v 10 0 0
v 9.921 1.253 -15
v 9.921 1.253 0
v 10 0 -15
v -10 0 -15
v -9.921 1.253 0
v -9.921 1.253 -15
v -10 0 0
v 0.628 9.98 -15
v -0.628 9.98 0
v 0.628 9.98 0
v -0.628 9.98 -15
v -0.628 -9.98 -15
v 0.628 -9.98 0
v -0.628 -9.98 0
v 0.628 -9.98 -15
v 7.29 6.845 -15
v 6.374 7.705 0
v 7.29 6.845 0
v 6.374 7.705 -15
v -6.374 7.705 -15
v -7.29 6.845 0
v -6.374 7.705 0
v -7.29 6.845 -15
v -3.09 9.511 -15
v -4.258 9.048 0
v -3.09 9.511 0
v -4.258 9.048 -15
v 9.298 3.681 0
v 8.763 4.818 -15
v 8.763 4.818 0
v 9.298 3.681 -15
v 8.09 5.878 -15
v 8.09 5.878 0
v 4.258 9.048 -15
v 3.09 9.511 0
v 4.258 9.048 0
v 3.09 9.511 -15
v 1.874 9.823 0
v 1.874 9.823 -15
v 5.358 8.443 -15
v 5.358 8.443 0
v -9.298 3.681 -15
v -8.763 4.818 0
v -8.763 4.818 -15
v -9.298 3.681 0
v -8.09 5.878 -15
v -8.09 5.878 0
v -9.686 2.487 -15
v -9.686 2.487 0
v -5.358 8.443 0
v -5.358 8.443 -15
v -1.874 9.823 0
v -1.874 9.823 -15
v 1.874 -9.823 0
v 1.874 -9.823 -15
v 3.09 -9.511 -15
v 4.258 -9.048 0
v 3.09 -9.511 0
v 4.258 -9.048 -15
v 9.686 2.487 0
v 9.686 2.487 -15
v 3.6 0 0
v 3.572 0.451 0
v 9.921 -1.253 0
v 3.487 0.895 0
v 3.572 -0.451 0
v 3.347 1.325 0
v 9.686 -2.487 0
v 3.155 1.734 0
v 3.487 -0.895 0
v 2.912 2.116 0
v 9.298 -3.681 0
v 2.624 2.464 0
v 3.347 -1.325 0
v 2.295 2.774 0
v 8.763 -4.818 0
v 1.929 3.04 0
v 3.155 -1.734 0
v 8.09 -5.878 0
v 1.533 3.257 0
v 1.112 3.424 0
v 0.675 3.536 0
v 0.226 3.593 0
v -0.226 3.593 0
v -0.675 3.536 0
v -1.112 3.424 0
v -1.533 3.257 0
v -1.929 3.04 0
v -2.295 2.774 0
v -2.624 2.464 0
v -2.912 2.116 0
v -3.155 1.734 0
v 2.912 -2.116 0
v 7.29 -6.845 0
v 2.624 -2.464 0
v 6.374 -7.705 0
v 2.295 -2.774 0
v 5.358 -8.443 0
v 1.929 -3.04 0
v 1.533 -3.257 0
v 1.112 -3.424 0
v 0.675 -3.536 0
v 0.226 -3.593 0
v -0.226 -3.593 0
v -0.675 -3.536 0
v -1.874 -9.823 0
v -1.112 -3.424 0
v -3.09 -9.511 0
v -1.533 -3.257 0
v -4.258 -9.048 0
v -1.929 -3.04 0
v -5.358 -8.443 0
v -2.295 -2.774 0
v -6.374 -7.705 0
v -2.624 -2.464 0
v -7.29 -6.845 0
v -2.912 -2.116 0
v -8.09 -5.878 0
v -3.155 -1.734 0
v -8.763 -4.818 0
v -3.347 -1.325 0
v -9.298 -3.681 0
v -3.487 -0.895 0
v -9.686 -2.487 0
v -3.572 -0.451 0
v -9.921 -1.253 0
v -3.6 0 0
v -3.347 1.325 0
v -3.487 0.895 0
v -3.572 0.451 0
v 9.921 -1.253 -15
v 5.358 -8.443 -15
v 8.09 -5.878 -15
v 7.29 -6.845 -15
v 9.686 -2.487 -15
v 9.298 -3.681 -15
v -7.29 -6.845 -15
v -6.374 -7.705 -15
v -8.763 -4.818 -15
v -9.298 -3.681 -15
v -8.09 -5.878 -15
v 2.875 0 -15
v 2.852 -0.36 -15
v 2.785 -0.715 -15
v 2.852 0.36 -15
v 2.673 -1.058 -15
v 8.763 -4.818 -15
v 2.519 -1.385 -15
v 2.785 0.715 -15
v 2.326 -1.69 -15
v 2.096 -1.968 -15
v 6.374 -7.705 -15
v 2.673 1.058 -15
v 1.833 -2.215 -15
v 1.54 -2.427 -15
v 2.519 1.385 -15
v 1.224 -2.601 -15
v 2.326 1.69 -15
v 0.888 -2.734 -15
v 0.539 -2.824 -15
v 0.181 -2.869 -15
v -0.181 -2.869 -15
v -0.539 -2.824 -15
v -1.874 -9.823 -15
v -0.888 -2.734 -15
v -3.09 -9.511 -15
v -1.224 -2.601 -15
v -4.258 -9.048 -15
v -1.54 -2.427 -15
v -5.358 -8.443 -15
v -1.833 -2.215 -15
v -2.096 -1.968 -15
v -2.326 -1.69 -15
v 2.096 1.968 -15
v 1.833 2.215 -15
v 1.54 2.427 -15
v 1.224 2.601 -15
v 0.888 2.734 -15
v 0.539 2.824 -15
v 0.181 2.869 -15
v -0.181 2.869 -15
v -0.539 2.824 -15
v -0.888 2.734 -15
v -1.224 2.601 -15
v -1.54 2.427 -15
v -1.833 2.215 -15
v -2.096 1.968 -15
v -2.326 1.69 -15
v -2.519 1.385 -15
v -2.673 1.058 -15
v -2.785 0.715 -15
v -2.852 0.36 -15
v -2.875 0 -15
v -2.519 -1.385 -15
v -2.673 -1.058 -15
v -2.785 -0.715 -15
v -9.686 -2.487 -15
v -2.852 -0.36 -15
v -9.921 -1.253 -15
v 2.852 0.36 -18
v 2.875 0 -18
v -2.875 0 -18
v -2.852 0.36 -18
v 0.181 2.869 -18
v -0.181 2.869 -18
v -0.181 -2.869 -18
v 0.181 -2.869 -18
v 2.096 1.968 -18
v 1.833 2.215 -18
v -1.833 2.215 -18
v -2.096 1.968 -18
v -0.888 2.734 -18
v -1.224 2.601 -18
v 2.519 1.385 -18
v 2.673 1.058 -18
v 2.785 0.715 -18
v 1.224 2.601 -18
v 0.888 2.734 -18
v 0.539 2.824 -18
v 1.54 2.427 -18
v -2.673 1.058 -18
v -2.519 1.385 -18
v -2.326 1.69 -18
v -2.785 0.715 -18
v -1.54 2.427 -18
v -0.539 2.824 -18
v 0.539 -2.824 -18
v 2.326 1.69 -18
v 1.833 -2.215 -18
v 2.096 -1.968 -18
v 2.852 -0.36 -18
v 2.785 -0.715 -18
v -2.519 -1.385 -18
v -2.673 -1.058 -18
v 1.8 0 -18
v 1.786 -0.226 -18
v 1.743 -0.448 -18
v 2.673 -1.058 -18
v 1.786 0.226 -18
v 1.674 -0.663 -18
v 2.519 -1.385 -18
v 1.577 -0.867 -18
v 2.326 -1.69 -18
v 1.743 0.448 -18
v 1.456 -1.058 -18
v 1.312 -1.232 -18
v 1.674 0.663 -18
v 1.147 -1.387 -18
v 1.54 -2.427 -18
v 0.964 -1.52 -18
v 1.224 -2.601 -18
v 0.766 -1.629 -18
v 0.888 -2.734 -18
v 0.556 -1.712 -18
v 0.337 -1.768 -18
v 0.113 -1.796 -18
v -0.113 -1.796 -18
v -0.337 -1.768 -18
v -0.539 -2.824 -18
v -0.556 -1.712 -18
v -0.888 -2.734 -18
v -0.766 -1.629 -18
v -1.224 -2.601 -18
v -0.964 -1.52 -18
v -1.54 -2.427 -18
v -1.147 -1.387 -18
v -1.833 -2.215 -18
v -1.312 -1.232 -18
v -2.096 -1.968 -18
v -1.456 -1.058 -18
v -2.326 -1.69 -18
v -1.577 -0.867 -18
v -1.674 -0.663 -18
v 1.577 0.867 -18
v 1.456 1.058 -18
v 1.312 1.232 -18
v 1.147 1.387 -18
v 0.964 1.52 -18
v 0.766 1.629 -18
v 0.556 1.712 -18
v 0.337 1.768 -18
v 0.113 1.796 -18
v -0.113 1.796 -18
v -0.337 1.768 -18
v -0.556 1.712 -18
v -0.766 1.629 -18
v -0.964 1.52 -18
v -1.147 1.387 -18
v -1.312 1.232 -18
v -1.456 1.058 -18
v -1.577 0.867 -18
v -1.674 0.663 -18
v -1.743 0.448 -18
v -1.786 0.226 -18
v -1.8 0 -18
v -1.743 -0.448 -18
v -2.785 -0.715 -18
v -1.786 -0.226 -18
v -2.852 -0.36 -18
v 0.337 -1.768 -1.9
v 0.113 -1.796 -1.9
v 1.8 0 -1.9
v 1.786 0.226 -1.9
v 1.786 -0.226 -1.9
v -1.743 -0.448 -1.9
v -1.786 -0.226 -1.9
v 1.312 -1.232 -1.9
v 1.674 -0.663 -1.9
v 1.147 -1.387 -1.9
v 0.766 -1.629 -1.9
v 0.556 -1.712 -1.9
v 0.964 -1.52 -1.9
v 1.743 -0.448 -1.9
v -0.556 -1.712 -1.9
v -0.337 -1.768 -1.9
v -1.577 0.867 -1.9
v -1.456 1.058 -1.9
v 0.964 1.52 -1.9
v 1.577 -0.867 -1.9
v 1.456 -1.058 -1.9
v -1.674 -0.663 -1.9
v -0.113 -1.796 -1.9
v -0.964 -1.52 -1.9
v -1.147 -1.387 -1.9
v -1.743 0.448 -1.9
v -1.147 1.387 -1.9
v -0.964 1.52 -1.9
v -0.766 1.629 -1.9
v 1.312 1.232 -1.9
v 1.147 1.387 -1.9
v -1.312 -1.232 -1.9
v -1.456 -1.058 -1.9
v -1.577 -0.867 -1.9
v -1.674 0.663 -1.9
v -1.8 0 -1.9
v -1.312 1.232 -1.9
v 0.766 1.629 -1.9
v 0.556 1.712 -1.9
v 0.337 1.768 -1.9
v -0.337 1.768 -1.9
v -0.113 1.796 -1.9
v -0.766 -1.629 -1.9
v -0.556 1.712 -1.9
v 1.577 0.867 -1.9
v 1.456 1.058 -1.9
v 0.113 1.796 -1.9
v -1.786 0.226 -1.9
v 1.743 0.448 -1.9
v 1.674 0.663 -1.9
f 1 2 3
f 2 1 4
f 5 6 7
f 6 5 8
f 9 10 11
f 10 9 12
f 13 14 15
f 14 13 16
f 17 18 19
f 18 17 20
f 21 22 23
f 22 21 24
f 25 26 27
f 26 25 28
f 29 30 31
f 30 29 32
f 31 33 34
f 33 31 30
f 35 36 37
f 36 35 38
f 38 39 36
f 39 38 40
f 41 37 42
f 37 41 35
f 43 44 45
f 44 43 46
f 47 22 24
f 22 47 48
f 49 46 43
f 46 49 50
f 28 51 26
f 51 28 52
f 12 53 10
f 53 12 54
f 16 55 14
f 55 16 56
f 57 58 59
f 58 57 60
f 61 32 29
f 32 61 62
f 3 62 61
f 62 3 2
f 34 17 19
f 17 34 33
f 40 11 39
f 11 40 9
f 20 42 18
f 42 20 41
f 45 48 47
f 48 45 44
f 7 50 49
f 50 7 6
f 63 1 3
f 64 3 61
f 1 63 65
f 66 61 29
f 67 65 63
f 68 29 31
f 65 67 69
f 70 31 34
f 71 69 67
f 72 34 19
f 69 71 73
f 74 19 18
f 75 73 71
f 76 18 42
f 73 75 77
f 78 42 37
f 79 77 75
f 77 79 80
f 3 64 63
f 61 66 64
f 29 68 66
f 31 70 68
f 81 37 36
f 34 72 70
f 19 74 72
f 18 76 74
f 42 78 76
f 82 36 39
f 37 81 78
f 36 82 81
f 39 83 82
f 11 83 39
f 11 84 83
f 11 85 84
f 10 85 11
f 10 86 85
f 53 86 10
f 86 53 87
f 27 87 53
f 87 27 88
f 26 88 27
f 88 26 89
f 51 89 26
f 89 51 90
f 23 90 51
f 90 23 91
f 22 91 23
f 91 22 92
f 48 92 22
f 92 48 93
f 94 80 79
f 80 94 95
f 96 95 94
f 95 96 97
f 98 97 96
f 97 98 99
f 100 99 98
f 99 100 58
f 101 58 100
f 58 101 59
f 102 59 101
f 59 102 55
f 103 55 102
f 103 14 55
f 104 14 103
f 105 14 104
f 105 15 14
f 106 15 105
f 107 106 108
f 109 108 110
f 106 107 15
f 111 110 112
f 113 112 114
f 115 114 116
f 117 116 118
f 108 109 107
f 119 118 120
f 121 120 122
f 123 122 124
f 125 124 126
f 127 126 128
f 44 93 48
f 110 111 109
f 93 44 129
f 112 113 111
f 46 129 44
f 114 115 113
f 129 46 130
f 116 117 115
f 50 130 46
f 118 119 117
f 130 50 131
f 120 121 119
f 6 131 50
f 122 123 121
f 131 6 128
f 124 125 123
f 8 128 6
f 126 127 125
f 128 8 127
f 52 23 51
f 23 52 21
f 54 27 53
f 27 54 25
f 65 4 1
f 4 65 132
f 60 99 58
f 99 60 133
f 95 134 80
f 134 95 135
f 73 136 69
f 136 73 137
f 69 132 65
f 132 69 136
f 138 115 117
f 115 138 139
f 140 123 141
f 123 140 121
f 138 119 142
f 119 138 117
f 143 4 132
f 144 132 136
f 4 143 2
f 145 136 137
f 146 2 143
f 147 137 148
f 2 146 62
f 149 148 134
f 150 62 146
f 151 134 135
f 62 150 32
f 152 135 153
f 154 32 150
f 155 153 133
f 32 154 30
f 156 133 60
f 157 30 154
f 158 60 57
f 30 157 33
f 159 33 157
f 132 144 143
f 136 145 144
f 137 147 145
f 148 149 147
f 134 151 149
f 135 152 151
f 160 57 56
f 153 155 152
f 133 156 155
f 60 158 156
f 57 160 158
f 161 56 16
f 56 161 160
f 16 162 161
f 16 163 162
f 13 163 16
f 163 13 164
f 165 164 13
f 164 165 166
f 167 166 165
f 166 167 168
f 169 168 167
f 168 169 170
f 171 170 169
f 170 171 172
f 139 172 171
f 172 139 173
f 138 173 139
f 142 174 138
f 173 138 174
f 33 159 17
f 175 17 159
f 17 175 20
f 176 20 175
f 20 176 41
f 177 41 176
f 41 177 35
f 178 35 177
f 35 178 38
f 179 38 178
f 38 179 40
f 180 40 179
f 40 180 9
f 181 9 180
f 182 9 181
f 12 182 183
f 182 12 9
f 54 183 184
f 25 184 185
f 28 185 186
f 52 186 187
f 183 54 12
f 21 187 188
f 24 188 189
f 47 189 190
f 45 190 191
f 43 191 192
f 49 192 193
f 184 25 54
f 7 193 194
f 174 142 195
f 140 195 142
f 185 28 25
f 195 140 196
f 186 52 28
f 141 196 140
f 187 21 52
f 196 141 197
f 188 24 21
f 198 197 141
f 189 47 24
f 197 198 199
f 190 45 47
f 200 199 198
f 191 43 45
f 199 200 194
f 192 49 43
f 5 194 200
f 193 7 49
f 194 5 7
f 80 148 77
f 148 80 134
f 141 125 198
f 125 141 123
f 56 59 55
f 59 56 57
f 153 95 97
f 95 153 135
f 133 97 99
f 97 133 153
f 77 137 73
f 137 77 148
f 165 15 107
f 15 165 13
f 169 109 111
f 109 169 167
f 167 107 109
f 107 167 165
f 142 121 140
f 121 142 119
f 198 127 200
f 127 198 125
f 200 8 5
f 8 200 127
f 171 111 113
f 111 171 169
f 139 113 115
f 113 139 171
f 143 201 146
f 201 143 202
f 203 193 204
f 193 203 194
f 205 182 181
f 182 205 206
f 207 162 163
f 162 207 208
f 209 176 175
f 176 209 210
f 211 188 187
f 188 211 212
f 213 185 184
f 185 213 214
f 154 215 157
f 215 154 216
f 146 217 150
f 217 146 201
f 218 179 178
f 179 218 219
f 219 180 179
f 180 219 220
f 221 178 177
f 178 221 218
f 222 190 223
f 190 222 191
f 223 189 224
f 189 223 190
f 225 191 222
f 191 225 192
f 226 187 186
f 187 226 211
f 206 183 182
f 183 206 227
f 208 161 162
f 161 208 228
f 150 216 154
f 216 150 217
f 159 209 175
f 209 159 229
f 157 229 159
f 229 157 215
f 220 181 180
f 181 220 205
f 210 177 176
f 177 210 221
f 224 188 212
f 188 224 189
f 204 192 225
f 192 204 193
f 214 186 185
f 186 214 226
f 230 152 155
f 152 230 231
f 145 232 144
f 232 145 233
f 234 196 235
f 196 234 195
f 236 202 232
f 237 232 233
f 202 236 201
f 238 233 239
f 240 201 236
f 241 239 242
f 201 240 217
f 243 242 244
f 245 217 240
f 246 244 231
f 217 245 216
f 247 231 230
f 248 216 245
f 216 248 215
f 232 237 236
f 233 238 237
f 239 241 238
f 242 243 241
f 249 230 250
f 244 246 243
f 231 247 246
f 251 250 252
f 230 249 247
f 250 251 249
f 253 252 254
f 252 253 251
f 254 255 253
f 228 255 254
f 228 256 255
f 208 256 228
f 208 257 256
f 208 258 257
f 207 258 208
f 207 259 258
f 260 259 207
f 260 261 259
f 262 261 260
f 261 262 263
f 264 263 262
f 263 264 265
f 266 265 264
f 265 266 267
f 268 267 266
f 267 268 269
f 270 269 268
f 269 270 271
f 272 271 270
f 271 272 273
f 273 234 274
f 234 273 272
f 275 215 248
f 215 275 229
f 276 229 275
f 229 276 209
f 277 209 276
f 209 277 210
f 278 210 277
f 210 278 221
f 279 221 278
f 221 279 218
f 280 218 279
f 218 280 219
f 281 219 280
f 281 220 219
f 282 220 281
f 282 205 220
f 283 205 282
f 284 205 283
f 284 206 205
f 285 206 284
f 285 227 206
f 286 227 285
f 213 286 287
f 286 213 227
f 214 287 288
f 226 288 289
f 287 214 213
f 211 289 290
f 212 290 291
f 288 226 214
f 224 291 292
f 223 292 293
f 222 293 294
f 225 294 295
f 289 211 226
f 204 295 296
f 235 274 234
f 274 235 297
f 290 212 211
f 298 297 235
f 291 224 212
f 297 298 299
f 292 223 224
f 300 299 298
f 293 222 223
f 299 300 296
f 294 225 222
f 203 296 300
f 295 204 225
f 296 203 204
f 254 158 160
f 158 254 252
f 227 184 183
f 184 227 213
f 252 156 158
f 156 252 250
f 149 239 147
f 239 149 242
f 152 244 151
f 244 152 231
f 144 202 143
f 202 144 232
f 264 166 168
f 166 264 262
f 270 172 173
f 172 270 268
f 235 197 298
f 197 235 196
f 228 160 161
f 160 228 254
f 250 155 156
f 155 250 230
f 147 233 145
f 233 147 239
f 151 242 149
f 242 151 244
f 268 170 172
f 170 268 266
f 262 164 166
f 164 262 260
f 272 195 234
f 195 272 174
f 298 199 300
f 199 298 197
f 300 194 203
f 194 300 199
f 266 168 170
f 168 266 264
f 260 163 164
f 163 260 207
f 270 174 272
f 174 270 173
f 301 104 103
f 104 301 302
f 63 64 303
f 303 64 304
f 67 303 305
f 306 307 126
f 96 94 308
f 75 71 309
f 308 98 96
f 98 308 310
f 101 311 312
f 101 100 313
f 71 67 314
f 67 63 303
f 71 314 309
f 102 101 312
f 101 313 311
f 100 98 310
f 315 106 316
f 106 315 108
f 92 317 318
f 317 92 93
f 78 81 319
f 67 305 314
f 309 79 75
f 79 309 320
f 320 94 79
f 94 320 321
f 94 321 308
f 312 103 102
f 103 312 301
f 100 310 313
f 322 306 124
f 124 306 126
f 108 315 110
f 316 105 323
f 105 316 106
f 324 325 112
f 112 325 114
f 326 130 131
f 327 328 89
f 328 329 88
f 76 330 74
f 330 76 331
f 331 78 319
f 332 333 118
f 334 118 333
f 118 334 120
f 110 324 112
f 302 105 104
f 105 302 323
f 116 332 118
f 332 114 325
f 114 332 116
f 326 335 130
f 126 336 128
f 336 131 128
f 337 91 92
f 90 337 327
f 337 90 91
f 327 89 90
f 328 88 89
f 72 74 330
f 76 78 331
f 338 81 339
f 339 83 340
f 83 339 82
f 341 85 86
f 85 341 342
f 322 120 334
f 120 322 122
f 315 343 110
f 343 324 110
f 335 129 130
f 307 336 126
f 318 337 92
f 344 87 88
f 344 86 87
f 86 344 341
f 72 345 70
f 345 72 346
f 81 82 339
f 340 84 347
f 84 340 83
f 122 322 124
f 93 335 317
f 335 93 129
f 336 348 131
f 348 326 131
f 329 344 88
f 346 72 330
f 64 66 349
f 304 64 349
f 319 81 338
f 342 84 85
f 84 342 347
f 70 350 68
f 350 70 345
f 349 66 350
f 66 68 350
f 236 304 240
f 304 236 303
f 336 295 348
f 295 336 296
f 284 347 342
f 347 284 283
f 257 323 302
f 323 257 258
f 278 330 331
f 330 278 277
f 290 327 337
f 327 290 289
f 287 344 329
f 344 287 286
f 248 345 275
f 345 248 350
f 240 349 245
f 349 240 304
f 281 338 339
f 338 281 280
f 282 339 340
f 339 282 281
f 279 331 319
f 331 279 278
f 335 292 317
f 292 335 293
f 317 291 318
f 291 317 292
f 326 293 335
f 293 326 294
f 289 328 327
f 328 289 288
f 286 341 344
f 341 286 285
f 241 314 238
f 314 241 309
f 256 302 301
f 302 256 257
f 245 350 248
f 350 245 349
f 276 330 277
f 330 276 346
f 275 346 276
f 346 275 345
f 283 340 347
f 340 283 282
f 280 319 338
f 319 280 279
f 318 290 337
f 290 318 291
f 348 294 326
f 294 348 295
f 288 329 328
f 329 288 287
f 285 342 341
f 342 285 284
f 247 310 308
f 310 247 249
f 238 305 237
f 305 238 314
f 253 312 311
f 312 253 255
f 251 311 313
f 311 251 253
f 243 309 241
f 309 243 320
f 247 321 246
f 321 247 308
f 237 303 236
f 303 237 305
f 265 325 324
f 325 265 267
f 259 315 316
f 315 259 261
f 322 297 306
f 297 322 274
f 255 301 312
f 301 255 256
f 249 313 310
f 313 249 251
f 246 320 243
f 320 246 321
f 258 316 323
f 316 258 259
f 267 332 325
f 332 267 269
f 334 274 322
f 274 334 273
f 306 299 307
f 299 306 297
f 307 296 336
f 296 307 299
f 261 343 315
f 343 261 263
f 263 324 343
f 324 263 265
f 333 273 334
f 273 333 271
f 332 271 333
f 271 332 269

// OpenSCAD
$fn = 50;

difference() {
	union() {
		translate(v = [0, 0, -15.0]) {
			cylinder(h = 15, r = 10.0);
		}
		#translate(v = [0, 0, -18.0]) {
			cylinder(h = 18, r = 2.875);
		}
	}
	union() {
		translate(v = [0, 0, 0]) {
			rotate(a = [0, 0, 0]) {
				difference() {
					union() {
						translate(v = [0, 0, -18.0]) {
							cylinder(h = 18, r = 1.5);
						}
						translate(v = [0, 0, -1.9]) {
							cylinder(h = 1.9, r1 = 1.8, r2 = 3.6);
						}
						translate(v = [0, 0, -18.0]) {
							cylinder(h = 18, r = 1.8);
						}
						translate(v = [0, 0, -18.0]) {
							cylinder(h = 18, r = 1.5);
						}
					}
					union();
				}
			}
		}
	}
}
